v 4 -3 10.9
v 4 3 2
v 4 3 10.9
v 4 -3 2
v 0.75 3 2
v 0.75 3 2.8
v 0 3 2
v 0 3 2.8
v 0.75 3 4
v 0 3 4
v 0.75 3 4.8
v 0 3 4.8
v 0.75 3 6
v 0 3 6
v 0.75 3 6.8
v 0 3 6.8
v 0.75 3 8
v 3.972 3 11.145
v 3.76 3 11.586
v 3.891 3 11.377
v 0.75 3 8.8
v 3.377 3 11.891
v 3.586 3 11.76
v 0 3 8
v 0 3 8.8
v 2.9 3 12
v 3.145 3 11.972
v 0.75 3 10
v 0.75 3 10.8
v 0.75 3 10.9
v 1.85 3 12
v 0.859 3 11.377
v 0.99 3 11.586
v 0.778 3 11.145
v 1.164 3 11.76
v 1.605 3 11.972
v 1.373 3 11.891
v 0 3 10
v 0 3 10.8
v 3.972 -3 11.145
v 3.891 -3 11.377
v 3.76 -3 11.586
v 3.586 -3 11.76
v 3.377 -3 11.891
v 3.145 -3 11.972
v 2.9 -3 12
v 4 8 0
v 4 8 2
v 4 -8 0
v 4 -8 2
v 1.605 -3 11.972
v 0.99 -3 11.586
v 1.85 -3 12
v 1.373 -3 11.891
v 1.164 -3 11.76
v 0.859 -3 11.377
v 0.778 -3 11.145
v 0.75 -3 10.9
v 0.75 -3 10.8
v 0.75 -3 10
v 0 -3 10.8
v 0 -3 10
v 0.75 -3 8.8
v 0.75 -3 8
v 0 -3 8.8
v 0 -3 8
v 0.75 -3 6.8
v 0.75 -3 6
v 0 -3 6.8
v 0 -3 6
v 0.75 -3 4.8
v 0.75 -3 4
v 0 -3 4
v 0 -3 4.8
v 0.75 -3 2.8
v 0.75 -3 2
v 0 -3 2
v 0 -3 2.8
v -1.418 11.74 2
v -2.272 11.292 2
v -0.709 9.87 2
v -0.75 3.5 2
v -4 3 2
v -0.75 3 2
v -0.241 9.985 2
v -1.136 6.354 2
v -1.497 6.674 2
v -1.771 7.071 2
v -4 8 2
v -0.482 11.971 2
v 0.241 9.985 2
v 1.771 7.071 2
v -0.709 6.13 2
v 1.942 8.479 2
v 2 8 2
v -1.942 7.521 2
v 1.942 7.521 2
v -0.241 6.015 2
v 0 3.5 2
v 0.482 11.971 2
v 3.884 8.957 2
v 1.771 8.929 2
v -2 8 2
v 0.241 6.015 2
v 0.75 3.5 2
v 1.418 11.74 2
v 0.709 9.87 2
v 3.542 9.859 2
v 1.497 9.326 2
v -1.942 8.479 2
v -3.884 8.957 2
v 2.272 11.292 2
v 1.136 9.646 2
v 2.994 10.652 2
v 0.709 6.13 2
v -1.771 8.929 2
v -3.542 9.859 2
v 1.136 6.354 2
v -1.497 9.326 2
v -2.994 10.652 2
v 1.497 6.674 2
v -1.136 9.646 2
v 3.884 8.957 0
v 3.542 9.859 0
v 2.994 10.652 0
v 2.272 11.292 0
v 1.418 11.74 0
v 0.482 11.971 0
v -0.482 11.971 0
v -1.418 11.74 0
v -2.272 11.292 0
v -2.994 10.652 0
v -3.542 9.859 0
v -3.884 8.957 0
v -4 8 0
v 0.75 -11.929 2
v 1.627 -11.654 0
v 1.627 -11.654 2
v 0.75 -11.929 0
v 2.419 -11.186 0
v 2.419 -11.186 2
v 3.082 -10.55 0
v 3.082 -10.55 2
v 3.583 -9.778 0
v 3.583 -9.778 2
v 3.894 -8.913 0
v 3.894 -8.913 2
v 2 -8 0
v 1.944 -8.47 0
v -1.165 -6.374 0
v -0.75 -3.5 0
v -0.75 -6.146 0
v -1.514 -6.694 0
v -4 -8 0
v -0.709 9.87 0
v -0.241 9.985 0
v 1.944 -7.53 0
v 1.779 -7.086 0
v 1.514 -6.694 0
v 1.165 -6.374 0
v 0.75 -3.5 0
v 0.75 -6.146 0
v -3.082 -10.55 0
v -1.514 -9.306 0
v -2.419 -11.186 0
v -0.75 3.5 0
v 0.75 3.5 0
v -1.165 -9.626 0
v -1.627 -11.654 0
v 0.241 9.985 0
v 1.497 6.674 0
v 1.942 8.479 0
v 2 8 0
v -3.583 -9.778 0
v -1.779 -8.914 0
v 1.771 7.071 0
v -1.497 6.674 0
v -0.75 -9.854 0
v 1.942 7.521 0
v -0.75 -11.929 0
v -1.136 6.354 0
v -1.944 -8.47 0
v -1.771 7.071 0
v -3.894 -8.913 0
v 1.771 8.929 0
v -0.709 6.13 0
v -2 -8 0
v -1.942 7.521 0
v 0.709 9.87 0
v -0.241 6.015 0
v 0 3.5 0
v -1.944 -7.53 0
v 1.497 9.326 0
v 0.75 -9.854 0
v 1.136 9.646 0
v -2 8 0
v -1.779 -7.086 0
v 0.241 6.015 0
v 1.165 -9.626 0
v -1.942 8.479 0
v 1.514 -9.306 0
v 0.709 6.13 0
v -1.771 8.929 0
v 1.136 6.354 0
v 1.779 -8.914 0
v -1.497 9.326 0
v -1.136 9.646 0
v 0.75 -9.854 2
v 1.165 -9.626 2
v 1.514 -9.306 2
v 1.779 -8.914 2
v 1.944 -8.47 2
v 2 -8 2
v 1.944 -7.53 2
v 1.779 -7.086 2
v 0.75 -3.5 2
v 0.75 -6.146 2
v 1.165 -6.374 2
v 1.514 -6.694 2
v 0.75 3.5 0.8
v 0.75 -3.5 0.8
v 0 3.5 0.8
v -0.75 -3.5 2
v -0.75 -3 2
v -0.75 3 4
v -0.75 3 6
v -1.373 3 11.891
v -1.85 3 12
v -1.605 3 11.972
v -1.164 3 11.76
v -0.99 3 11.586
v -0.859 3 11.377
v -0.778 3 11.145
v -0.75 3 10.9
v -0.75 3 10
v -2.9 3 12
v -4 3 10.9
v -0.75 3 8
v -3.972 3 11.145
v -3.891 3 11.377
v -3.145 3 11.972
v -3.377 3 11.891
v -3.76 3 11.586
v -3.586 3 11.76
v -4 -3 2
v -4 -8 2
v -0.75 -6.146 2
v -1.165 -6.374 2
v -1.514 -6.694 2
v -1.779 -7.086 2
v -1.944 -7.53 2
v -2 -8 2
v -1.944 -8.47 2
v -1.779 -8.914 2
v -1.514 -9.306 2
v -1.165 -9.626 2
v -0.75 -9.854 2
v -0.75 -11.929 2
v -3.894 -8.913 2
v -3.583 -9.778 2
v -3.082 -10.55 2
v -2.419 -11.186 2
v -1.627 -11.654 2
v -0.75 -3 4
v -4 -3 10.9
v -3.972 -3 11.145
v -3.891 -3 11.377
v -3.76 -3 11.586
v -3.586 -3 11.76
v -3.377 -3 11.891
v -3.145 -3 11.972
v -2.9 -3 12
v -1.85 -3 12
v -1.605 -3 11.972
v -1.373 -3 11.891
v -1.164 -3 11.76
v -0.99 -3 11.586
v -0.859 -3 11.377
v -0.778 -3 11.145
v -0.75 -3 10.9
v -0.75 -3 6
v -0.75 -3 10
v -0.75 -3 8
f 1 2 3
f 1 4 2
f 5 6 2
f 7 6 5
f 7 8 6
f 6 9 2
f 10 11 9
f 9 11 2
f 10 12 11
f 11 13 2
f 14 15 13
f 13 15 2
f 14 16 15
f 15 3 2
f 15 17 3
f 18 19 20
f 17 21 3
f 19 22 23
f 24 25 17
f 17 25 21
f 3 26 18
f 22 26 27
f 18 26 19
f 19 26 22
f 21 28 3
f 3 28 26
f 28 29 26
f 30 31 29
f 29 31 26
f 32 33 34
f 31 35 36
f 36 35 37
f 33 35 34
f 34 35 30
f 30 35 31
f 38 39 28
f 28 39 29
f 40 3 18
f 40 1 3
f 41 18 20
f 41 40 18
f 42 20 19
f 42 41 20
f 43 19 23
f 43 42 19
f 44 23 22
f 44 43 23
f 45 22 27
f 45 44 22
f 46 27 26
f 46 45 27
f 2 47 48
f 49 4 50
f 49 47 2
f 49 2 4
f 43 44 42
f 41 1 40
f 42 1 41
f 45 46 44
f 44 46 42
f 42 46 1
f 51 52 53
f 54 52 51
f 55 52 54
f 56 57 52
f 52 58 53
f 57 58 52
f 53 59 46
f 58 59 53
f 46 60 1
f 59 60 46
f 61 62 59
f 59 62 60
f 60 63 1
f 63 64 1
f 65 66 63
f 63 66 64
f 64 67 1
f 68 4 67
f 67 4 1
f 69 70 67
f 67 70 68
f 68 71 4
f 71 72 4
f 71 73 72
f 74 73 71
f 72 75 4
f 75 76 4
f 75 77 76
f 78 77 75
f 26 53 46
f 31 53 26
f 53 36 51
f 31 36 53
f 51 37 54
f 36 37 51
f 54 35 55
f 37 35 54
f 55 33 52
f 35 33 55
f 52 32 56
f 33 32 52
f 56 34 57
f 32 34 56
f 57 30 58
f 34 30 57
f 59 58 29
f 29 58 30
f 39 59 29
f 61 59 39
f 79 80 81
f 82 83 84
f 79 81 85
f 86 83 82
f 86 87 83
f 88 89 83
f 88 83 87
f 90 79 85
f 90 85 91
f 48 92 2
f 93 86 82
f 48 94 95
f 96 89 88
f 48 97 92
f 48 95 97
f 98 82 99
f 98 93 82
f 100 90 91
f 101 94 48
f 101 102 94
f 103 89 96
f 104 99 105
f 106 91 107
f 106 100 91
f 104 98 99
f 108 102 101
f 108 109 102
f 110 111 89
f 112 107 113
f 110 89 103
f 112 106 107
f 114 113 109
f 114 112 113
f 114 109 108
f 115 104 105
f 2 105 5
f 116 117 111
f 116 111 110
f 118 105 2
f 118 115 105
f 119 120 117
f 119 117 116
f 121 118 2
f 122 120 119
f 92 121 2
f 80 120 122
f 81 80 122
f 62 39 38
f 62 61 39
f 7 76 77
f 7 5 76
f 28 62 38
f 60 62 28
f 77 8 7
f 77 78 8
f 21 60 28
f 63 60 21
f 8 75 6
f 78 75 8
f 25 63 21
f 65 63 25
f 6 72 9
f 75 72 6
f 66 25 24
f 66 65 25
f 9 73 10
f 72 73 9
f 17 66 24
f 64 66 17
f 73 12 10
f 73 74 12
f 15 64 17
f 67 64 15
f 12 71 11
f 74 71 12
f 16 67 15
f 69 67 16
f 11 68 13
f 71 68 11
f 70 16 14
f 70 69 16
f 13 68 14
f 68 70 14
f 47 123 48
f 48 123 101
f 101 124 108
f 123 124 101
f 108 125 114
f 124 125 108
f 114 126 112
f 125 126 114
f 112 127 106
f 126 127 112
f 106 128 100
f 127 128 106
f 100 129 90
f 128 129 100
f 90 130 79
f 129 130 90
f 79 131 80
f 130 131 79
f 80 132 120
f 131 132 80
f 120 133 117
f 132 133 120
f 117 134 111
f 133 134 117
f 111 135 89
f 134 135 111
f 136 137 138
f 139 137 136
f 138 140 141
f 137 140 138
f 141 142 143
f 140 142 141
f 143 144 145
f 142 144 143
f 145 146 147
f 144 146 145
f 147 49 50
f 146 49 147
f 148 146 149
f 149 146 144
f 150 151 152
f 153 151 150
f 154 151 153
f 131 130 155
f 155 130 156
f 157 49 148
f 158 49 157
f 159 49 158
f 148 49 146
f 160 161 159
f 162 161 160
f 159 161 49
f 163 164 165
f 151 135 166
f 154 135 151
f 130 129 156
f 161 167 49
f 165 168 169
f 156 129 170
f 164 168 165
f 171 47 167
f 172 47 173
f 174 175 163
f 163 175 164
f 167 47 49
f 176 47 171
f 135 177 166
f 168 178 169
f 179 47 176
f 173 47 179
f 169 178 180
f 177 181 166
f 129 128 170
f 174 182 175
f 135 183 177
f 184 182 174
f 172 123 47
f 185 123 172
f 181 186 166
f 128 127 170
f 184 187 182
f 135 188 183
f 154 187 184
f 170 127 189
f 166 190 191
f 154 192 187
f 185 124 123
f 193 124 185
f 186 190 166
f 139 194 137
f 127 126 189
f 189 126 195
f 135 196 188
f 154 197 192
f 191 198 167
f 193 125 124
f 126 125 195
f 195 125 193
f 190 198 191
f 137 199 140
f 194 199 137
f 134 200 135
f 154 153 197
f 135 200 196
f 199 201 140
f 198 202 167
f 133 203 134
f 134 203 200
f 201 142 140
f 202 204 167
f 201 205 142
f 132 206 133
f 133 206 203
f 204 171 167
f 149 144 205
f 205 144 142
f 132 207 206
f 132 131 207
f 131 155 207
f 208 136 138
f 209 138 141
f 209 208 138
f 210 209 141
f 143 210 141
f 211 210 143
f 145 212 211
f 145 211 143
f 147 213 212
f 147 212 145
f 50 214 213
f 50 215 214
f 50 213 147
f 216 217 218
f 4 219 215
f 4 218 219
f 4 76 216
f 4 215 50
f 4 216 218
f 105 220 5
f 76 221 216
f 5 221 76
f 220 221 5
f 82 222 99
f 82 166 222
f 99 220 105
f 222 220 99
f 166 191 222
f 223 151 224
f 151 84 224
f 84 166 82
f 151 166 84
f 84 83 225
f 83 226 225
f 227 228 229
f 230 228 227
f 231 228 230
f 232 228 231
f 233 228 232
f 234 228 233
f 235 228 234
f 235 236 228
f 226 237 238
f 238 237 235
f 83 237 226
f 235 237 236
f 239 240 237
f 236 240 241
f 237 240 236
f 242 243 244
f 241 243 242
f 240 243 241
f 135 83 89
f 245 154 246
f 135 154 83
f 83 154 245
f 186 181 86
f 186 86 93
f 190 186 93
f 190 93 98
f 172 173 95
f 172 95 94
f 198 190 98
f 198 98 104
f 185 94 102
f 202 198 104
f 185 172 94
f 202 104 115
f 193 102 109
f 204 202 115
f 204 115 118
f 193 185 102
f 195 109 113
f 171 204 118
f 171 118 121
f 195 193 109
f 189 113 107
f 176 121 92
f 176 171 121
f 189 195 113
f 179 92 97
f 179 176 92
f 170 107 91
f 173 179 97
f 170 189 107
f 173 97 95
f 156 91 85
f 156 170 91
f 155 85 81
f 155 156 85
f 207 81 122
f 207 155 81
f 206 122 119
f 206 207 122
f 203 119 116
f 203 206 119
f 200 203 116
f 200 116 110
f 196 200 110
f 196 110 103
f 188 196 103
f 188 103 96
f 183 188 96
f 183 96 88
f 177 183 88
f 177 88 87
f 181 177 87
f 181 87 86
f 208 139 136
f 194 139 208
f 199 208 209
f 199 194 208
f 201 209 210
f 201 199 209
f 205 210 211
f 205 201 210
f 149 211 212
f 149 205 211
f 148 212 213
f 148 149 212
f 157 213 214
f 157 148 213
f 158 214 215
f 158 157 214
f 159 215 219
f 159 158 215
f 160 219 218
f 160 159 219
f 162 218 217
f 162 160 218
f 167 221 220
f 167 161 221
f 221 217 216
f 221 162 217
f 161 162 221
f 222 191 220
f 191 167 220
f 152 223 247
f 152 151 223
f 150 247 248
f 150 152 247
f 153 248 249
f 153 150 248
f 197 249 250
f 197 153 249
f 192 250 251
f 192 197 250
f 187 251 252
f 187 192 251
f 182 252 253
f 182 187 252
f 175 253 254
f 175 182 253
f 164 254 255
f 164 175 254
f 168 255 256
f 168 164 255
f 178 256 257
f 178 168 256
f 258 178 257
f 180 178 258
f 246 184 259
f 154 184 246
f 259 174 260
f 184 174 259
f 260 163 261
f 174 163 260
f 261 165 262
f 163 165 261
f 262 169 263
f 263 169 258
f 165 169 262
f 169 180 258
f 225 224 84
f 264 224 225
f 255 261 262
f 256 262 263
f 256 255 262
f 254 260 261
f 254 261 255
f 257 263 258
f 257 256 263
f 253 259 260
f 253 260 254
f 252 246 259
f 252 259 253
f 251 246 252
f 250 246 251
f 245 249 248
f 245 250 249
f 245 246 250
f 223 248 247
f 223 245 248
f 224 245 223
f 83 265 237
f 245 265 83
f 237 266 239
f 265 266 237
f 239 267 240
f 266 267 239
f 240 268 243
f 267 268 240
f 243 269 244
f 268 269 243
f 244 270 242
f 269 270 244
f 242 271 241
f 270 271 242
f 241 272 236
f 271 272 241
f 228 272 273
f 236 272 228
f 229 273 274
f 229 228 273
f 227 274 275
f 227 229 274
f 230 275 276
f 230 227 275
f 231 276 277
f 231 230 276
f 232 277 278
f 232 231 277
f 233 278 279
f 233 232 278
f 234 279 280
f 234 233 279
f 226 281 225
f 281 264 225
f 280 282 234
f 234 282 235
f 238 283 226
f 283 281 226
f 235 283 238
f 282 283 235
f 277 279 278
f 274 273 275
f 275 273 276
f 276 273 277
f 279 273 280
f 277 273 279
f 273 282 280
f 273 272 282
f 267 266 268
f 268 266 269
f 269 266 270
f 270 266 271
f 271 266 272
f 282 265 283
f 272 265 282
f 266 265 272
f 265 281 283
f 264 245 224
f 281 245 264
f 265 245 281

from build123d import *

# Parameters (mm, degrees)
SKETCH_R            = 2
PAD_DEPTH           = 2
SKETCH001_W         = 6
SKETCH001_H         = 10
PAD001_DEPTH        = 4
SKETCH002_W         = 1.5
SKETCH002_H         = 15.5
POCKET_DEPTH        = 2
POCKET001_DEPTH     = 3.5
LINEARPATTERN_COUNT = 7
LINEARPATTERN_PITCH = 2
FILLET_R            = 1.1


with BuildPart() as part:
    # Sketch → Pad (new body)
    with BuildSketch(Plane.XY):
        with BuildLine():
            ThreePointArc((4, 8), (0, 12), (-4, 8))
            Line((-4, 8), (-4, -8))
            ThreePointArc((-4, -8), (0, -12), (4, -8))
            Line((4, 8), (4, -8))
        make_face()
        with Locations((0, 8)):
            Circle(SKETCH_R, mode=Mode.SUBTRACT)
        with Locations((0, -8)):
            Circle(SKETCH_R, mode=Mode.SUBTRACT)
    extrude(amount=PAD_DEPTH)

    # Sketch001 → Pad001 (join, symmetric)
    with BuildSketch(Plane.YZ):
        with Locations((0, 7)):
            Rectangle(SKETCH001_W, SKETCH001_H)
    extrude(amount=PAD001_DEPTH, both=True)

    # Sketch002 → Pocket (cut)
    with BuildSketch(Plane.XY):
        with Locations((0, -4.25)):
            Rectangle(SKETCH002_W, SKETCH002_H)
    extrude(amount=POCKET_DEPTH, mode=Mode.SUBTRACT)

    # Sketch003 → Pocket001 (cut, symmetric)
    with BuildSketch(Plane.XZ):
        Polygon((0, -1.2), (0, -2), (-0.75, -2), (-0.75, 0), (0.75, 0), (0.75, -1.2), align=None)
    pocket001 = extrude(amount=POCKET001_DEPTH, both=True, mode=Mode.SUBTRACT)

    # LinearPattern: Pocket001 ×7
    with Locations(*[(0, 0, i * LINEARPATTERN_PITCH) for i in range(1, LINEARPATTERN_COUNT)]):
        add(pocket001, mode=Mode.SUBTRACT)

    # Fillet
    fillet_edges = [part.edges().sort_by_distance(p)[0] for p in [
        (4, 0, 12),
        (0.75, 0, 12),
        (-0.75, 0, 12),
        (-4, 0, 12),
    ]]
    fillet(fillet_edges, radius=FILLET_R)


solid = part.part
